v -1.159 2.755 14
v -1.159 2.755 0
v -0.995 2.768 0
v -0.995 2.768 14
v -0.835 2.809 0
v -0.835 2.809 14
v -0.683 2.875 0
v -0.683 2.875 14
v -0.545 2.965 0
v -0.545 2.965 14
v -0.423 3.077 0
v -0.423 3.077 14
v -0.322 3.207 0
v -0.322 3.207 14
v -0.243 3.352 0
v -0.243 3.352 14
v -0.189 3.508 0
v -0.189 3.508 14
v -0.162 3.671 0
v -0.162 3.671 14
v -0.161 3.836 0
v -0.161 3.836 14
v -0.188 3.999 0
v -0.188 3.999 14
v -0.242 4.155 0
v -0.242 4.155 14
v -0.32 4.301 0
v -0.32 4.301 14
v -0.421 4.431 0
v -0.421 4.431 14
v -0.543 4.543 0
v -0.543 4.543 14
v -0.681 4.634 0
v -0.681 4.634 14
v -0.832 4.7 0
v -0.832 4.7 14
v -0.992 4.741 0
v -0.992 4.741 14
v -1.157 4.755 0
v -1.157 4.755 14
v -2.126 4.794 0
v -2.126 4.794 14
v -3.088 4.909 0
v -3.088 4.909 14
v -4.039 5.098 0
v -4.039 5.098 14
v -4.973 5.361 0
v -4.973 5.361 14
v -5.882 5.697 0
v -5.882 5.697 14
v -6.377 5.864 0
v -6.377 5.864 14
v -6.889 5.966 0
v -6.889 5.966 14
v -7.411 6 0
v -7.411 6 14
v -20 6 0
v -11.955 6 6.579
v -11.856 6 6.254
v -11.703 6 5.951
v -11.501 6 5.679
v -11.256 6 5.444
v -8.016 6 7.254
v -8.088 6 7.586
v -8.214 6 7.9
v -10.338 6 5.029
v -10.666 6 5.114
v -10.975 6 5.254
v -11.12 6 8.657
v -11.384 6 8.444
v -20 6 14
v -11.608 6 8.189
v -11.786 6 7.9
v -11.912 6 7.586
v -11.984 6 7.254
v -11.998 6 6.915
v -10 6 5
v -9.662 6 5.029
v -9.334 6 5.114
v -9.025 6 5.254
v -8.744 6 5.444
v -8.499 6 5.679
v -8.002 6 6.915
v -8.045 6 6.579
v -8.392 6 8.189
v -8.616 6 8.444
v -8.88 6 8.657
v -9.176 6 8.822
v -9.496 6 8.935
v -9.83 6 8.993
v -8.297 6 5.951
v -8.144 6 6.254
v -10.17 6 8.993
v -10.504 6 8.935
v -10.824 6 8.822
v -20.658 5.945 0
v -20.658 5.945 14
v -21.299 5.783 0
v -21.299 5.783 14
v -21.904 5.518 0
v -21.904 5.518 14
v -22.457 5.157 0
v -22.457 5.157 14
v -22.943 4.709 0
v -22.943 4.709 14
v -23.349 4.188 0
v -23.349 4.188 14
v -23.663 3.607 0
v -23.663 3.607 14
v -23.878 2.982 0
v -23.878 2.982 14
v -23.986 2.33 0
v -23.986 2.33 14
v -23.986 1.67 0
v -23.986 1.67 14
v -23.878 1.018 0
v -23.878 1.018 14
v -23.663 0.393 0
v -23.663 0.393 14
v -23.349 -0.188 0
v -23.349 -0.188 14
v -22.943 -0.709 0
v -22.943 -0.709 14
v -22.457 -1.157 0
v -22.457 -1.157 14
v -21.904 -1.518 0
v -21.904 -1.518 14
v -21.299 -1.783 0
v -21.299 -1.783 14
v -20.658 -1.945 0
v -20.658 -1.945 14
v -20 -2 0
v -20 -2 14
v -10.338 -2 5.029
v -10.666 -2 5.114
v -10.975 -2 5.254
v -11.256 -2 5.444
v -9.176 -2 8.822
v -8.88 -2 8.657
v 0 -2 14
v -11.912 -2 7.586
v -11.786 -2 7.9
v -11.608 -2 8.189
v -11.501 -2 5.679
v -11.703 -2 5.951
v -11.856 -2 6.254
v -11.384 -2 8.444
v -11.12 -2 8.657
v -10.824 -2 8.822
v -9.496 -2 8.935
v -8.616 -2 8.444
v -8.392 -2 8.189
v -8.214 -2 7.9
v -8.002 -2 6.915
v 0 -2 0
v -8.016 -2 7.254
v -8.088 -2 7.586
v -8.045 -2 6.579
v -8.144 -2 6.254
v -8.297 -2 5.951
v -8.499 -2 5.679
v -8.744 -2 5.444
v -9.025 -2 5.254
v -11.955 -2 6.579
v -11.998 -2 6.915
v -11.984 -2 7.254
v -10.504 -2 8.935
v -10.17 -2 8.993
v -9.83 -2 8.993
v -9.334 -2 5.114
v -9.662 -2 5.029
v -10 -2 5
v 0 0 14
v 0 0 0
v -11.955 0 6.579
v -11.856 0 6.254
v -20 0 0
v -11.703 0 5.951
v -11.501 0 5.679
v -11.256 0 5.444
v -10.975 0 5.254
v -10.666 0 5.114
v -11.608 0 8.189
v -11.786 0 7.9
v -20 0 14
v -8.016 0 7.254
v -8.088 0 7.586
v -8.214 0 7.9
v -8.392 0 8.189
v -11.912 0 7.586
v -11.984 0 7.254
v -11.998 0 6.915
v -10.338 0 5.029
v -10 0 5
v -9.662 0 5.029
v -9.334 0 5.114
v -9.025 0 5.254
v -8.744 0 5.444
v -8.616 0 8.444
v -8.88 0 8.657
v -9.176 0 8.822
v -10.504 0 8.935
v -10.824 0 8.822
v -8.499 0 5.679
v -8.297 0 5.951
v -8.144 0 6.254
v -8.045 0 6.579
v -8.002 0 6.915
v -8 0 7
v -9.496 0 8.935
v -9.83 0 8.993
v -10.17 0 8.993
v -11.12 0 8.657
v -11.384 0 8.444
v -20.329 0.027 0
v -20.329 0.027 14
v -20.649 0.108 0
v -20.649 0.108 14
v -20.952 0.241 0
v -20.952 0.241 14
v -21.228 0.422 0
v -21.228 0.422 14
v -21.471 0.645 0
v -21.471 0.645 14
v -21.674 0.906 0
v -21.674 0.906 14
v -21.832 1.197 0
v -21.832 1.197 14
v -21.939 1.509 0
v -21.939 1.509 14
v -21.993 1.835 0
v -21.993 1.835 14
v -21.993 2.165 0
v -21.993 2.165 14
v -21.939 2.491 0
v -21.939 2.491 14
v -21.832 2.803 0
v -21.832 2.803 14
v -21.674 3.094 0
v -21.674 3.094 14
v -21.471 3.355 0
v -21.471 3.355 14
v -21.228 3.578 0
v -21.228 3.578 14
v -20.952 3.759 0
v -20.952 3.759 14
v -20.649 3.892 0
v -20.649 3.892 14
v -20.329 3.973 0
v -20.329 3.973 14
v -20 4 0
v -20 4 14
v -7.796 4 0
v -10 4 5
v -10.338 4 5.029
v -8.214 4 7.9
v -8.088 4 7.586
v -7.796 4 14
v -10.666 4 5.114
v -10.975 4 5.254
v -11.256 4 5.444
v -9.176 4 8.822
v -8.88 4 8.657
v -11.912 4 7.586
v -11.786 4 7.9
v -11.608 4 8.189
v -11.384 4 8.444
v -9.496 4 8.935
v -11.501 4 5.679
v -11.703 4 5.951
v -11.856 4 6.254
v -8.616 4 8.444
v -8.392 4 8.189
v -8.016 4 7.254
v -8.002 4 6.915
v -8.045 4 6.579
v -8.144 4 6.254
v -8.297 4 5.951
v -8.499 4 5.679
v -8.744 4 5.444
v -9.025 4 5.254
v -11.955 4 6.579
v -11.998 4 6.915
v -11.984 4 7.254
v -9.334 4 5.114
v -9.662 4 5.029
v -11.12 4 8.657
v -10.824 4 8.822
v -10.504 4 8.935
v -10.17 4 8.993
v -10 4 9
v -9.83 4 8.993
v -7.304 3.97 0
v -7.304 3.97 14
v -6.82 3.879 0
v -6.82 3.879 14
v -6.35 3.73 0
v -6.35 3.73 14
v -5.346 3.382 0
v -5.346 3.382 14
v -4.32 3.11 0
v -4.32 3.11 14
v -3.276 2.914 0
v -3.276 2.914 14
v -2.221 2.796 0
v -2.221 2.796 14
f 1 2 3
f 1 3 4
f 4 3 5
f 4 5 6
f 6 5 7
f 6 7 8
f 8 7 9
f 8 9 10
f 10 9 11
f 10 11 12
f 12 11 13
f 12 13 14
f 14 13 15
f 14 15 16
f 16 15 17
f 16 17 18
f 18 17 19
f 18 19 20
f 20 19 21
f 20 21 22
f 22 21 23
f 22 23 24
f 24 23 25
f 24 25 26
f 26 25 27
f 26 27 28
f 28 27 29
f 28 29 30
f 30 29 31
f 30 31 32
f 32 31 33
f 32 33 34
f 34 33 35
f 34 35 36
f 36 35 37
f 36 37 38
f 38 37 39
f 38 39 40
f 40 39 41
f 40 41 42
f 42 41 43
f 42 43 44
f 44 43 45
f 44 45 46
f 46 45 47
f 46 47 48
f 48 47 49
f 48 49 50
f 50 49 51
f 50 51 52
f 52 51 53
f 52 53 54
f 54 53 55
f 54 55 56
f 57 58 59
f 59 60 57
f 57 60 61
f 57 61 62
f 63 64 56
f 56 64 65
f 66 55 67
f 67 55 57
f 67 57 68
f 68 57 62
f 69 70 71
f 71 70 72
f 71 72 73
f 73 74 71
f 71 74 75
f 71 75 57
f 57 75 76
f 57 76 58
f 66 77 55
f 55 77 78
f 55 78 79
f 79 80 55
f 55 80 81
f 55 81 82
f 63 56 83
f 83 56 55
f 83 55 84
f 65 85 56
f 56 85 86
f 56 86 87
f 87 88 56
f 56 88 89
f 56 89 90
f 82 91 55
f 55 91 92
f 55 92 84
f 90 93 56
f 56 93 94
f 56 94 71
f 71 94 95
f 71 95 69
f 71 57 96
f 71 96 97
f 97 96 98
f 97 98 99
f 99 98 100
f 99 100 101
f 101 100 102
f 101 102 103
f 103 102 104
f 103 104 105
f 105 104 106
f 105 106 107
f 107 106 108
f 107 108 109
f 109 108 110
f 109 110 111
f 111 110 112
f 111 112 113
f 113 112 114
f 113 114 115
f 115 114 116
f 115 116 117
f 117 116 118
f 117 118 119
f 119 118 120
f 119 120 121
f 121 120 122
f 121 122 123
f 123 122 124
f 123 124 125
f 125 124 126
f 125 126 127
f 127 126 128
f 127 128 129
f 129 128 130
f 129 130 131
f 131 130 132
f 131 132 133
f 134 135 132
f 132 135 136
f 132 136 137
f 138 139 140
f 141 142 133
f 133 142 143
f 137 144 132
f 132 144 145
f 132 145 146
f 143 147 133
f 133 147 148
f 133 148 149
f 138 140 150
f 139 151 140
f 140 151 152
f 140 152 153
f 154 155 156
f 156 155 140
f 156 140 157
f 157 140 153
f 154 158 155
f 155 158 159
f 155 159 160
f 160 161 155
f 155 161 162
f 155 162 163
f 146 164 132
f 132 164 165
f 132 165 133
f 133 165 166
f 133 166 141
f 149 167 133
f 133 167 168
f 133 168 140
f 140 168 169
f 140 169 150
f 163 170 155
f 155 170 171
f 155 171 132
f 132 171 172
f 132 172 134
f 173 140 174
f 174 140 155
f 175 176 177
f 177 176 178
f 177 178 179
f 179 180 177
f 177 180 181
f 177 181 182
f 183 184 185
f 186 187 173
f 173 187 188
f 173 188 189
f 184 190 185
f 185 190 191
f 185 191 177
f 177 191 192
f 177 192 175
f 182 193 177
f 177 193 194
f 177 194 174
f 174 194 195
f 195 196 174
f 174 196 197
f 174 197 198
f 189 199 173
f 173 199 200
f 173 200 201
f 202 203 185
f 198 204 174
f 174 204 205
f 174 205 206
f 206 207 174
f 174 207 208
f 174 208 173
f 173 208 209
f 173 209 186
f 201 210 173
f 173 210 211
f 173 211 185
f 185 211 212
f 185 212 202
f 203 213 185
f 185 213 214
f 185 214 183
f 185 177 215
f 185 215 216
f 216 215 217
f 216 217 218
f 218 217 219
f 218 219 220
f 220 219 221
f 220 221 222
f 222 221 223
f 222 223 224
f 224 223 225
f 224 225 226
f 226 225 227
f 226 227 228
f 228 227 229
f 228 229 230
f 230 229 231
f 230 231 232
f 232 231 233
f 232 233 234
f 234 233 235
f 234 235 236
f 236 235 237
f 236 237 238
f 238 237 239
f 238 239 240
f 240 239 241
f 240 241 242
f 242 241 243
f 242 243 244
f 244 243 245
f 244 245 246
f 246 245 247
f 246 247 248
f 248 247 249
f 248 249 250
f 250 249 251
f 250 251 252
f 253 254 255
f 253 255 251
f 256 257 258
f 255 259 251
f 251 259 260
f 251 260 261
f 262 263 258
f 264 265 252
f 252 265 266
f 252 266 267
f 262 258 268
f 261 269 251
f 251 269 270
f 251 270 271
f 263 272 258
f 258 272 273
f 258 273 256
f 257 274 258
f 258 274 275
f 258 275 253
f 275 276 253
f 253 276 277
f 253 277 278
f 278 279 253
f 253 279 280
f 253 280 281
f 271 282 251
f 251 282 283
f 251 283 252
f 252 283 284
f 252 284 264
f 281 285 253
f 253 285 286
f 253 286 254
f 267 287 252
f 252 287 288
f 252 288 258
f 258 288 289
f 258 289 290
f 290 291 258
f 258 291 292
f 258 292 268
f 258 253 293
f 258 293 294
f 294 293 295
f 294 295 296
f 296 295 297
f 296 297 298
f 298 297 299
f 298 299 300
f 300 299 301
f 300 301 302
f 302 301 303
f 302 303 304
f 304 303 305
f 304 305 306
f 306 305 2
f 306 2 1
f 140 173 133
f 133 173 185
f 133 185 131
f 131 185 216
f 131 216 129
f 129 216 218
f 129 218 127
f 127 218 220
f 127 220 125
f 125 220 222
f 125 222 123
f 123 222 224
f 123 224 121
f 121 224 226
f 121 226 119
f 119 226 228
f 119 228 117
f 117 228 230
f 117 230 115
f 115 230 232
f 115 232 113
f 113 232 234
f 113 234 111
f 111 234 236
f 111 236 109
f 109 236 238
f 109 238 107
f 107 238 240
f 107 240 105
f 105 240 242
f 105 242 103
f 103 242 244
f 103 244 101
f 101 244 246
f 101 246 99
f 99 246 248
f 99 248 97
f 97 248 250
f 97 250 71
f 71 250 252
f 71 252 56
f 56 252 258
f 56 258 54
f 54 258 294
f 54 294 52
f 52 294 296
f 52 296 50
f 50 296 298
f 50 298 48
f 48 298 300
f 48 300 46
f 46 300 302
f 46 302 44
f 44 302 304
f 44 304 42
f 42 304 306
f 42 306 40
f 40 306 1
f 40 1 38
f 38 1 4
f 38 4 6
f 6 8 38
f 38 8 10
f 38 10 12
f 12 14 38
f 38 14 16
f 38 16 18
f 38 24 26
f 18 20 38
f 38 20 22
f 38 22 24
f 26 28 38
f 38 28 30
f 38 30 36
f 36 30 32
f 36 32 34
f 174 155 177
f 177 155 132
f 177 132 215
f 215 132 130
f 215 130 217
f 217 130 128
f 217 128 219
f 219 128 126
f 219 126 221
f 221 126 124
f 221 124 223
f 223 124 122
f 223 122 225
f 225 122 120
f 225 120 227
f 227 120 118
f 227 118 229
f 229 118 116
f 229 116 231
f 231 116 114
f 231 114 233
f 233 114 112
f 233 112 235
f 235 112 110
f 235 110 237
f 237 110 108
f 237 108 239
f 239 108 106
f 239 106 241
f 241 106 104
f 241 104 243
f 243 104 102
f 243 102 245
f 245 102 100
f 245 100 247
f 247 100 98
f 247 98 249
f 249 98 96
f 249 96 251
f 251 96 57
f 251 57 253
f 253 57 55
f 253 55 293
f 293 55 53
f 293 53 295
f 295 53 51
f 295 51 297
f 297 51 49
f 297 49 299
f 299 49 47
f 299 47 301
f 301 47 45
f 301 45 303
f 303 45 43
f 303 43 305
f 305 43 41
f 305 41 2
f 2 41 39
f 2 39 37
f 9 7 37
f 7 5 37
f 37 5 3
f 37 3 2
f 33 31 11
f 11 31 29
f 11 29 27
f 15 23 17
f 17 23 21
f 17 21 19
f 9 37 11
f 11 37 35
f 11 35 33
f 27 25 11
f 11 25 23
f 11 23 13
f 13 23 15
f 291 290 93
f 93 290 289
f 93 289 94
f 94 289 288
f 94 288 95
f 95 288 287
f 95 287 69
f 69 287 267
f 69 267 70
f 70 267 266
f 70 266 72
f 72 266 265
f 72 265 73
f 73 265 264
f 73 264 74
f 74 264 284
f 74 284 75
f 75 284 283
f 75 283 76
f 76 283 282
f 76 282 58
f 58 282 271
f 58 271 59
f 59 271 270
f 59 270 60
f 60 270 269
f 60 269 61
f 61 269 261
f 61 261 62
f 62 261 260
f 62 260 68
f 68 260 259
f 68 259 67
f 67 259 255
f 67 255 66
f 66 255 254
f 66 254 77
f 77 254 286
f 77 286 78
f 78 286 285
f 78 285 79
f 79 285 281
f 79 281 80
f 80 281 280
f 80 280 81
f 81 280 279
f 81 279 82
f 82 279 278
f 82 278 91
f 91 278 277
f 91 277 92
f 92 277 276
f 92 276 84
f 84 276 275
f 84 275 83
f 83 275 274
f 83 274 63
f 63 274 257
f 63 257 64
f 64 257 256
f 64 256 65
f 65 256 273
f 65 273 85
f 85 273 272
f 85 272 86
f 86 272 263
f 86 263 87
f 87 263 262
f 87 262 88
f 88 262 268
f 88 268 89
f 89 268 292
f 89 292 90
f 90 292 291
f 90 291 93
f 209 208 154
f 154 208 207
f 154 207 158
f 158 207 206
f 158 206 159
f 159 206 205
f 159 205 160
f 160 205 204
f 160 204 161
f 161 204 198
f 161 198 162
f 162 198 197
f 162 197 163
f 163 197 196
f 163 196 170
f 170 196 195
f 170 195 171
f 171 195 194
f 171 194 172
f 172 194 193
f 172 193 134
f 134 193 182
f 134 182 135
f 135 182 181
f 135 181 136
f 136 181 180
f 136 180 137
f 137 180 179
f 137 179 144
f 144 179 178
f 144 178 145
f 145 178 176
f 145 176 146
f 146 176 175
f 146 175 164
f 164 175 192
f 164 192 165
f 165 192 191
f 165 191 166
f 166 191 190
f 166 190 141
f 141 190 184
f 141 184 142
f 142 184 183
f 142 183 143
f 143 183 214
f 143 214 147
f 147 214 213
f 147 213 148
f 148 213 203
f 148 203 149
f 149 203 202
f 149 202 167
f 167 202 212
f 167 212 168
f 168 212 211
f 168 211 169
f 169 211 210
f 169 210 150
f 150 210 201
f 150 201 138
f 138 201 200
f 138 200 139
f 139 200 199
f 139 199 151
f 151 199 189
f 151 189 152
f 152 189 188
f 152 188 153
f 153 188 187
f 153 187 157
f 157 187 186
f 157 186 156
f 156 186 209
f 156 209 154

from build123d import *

# Parameters (mm, degrees)
BOSS_EXTRUDE1_DEPTH = 14
SKETCH2_R           = 2
CUT_EXTRUDE2_DEPTH  = 9


with BuildPart() as part:
    # Sketch1 → Boss-Extrude1 (new body)
    with BuildSketch(Plane.XY):
        with BuildLine():
            ThreePointArc((-0.158092835, 3.754907593), (-0.451477513, 3.047309694), (-1.159482409, 2.754908559))
            ThreePointArc((-1.159482409, 2.754908559), (-3.799725402, 3.002497057), (-6.349938035, 3.729544963))
            ThreePointArc((-6.349938035, 3.729544963), (-7.060326346, 3.93180492), (-7.795792236, 4))
            Line((-7.795792236, 4), (-20, 4))
            ThreePointArc((-20, 4), (-22, 2), (-20, 0))
            Line((-20, 0), (0, 0))
            Line((0, 0), (0, -2))
            Line((0, -2), (-20, -2))
            ThreePointArc((-20, -2), (-24, 2), (-20, 6))
            Line((-20, 6), (-7.410531978, 6))
            ThreePointArc((-7.410531978, 6), (-6.631548949, 5.923415023), (-5.882395119, 5.696592721))
            ThreePointArc((-5.882395119, 5.696592721), (-3.565674535, 4.994277462), (-1.156703262, 4.754906628))
            ThreePointArc((-1.156703262, 4.754906628), (-0.450494936, 4.461522915), (-0.158092835, 3.754907593))
        make_face()
    extrude(amount=BOSS_EXTRUDE1_DEPTH)

    # Sketch2 → Cut-Extrude2 (cut, through all)
    with BuildSketch(Plane(origin=(0, -2, 0), x_dir=(-1, 0, 0), z_dir=(0, -1, 0))):
        with Locations((10, -7)):
            Circle(SKETCH2_R)
    extrude(amount=-CUT_EXTRUDE2_DEPTH, mode=Mode.SUBTRACT)


solid = part.part
